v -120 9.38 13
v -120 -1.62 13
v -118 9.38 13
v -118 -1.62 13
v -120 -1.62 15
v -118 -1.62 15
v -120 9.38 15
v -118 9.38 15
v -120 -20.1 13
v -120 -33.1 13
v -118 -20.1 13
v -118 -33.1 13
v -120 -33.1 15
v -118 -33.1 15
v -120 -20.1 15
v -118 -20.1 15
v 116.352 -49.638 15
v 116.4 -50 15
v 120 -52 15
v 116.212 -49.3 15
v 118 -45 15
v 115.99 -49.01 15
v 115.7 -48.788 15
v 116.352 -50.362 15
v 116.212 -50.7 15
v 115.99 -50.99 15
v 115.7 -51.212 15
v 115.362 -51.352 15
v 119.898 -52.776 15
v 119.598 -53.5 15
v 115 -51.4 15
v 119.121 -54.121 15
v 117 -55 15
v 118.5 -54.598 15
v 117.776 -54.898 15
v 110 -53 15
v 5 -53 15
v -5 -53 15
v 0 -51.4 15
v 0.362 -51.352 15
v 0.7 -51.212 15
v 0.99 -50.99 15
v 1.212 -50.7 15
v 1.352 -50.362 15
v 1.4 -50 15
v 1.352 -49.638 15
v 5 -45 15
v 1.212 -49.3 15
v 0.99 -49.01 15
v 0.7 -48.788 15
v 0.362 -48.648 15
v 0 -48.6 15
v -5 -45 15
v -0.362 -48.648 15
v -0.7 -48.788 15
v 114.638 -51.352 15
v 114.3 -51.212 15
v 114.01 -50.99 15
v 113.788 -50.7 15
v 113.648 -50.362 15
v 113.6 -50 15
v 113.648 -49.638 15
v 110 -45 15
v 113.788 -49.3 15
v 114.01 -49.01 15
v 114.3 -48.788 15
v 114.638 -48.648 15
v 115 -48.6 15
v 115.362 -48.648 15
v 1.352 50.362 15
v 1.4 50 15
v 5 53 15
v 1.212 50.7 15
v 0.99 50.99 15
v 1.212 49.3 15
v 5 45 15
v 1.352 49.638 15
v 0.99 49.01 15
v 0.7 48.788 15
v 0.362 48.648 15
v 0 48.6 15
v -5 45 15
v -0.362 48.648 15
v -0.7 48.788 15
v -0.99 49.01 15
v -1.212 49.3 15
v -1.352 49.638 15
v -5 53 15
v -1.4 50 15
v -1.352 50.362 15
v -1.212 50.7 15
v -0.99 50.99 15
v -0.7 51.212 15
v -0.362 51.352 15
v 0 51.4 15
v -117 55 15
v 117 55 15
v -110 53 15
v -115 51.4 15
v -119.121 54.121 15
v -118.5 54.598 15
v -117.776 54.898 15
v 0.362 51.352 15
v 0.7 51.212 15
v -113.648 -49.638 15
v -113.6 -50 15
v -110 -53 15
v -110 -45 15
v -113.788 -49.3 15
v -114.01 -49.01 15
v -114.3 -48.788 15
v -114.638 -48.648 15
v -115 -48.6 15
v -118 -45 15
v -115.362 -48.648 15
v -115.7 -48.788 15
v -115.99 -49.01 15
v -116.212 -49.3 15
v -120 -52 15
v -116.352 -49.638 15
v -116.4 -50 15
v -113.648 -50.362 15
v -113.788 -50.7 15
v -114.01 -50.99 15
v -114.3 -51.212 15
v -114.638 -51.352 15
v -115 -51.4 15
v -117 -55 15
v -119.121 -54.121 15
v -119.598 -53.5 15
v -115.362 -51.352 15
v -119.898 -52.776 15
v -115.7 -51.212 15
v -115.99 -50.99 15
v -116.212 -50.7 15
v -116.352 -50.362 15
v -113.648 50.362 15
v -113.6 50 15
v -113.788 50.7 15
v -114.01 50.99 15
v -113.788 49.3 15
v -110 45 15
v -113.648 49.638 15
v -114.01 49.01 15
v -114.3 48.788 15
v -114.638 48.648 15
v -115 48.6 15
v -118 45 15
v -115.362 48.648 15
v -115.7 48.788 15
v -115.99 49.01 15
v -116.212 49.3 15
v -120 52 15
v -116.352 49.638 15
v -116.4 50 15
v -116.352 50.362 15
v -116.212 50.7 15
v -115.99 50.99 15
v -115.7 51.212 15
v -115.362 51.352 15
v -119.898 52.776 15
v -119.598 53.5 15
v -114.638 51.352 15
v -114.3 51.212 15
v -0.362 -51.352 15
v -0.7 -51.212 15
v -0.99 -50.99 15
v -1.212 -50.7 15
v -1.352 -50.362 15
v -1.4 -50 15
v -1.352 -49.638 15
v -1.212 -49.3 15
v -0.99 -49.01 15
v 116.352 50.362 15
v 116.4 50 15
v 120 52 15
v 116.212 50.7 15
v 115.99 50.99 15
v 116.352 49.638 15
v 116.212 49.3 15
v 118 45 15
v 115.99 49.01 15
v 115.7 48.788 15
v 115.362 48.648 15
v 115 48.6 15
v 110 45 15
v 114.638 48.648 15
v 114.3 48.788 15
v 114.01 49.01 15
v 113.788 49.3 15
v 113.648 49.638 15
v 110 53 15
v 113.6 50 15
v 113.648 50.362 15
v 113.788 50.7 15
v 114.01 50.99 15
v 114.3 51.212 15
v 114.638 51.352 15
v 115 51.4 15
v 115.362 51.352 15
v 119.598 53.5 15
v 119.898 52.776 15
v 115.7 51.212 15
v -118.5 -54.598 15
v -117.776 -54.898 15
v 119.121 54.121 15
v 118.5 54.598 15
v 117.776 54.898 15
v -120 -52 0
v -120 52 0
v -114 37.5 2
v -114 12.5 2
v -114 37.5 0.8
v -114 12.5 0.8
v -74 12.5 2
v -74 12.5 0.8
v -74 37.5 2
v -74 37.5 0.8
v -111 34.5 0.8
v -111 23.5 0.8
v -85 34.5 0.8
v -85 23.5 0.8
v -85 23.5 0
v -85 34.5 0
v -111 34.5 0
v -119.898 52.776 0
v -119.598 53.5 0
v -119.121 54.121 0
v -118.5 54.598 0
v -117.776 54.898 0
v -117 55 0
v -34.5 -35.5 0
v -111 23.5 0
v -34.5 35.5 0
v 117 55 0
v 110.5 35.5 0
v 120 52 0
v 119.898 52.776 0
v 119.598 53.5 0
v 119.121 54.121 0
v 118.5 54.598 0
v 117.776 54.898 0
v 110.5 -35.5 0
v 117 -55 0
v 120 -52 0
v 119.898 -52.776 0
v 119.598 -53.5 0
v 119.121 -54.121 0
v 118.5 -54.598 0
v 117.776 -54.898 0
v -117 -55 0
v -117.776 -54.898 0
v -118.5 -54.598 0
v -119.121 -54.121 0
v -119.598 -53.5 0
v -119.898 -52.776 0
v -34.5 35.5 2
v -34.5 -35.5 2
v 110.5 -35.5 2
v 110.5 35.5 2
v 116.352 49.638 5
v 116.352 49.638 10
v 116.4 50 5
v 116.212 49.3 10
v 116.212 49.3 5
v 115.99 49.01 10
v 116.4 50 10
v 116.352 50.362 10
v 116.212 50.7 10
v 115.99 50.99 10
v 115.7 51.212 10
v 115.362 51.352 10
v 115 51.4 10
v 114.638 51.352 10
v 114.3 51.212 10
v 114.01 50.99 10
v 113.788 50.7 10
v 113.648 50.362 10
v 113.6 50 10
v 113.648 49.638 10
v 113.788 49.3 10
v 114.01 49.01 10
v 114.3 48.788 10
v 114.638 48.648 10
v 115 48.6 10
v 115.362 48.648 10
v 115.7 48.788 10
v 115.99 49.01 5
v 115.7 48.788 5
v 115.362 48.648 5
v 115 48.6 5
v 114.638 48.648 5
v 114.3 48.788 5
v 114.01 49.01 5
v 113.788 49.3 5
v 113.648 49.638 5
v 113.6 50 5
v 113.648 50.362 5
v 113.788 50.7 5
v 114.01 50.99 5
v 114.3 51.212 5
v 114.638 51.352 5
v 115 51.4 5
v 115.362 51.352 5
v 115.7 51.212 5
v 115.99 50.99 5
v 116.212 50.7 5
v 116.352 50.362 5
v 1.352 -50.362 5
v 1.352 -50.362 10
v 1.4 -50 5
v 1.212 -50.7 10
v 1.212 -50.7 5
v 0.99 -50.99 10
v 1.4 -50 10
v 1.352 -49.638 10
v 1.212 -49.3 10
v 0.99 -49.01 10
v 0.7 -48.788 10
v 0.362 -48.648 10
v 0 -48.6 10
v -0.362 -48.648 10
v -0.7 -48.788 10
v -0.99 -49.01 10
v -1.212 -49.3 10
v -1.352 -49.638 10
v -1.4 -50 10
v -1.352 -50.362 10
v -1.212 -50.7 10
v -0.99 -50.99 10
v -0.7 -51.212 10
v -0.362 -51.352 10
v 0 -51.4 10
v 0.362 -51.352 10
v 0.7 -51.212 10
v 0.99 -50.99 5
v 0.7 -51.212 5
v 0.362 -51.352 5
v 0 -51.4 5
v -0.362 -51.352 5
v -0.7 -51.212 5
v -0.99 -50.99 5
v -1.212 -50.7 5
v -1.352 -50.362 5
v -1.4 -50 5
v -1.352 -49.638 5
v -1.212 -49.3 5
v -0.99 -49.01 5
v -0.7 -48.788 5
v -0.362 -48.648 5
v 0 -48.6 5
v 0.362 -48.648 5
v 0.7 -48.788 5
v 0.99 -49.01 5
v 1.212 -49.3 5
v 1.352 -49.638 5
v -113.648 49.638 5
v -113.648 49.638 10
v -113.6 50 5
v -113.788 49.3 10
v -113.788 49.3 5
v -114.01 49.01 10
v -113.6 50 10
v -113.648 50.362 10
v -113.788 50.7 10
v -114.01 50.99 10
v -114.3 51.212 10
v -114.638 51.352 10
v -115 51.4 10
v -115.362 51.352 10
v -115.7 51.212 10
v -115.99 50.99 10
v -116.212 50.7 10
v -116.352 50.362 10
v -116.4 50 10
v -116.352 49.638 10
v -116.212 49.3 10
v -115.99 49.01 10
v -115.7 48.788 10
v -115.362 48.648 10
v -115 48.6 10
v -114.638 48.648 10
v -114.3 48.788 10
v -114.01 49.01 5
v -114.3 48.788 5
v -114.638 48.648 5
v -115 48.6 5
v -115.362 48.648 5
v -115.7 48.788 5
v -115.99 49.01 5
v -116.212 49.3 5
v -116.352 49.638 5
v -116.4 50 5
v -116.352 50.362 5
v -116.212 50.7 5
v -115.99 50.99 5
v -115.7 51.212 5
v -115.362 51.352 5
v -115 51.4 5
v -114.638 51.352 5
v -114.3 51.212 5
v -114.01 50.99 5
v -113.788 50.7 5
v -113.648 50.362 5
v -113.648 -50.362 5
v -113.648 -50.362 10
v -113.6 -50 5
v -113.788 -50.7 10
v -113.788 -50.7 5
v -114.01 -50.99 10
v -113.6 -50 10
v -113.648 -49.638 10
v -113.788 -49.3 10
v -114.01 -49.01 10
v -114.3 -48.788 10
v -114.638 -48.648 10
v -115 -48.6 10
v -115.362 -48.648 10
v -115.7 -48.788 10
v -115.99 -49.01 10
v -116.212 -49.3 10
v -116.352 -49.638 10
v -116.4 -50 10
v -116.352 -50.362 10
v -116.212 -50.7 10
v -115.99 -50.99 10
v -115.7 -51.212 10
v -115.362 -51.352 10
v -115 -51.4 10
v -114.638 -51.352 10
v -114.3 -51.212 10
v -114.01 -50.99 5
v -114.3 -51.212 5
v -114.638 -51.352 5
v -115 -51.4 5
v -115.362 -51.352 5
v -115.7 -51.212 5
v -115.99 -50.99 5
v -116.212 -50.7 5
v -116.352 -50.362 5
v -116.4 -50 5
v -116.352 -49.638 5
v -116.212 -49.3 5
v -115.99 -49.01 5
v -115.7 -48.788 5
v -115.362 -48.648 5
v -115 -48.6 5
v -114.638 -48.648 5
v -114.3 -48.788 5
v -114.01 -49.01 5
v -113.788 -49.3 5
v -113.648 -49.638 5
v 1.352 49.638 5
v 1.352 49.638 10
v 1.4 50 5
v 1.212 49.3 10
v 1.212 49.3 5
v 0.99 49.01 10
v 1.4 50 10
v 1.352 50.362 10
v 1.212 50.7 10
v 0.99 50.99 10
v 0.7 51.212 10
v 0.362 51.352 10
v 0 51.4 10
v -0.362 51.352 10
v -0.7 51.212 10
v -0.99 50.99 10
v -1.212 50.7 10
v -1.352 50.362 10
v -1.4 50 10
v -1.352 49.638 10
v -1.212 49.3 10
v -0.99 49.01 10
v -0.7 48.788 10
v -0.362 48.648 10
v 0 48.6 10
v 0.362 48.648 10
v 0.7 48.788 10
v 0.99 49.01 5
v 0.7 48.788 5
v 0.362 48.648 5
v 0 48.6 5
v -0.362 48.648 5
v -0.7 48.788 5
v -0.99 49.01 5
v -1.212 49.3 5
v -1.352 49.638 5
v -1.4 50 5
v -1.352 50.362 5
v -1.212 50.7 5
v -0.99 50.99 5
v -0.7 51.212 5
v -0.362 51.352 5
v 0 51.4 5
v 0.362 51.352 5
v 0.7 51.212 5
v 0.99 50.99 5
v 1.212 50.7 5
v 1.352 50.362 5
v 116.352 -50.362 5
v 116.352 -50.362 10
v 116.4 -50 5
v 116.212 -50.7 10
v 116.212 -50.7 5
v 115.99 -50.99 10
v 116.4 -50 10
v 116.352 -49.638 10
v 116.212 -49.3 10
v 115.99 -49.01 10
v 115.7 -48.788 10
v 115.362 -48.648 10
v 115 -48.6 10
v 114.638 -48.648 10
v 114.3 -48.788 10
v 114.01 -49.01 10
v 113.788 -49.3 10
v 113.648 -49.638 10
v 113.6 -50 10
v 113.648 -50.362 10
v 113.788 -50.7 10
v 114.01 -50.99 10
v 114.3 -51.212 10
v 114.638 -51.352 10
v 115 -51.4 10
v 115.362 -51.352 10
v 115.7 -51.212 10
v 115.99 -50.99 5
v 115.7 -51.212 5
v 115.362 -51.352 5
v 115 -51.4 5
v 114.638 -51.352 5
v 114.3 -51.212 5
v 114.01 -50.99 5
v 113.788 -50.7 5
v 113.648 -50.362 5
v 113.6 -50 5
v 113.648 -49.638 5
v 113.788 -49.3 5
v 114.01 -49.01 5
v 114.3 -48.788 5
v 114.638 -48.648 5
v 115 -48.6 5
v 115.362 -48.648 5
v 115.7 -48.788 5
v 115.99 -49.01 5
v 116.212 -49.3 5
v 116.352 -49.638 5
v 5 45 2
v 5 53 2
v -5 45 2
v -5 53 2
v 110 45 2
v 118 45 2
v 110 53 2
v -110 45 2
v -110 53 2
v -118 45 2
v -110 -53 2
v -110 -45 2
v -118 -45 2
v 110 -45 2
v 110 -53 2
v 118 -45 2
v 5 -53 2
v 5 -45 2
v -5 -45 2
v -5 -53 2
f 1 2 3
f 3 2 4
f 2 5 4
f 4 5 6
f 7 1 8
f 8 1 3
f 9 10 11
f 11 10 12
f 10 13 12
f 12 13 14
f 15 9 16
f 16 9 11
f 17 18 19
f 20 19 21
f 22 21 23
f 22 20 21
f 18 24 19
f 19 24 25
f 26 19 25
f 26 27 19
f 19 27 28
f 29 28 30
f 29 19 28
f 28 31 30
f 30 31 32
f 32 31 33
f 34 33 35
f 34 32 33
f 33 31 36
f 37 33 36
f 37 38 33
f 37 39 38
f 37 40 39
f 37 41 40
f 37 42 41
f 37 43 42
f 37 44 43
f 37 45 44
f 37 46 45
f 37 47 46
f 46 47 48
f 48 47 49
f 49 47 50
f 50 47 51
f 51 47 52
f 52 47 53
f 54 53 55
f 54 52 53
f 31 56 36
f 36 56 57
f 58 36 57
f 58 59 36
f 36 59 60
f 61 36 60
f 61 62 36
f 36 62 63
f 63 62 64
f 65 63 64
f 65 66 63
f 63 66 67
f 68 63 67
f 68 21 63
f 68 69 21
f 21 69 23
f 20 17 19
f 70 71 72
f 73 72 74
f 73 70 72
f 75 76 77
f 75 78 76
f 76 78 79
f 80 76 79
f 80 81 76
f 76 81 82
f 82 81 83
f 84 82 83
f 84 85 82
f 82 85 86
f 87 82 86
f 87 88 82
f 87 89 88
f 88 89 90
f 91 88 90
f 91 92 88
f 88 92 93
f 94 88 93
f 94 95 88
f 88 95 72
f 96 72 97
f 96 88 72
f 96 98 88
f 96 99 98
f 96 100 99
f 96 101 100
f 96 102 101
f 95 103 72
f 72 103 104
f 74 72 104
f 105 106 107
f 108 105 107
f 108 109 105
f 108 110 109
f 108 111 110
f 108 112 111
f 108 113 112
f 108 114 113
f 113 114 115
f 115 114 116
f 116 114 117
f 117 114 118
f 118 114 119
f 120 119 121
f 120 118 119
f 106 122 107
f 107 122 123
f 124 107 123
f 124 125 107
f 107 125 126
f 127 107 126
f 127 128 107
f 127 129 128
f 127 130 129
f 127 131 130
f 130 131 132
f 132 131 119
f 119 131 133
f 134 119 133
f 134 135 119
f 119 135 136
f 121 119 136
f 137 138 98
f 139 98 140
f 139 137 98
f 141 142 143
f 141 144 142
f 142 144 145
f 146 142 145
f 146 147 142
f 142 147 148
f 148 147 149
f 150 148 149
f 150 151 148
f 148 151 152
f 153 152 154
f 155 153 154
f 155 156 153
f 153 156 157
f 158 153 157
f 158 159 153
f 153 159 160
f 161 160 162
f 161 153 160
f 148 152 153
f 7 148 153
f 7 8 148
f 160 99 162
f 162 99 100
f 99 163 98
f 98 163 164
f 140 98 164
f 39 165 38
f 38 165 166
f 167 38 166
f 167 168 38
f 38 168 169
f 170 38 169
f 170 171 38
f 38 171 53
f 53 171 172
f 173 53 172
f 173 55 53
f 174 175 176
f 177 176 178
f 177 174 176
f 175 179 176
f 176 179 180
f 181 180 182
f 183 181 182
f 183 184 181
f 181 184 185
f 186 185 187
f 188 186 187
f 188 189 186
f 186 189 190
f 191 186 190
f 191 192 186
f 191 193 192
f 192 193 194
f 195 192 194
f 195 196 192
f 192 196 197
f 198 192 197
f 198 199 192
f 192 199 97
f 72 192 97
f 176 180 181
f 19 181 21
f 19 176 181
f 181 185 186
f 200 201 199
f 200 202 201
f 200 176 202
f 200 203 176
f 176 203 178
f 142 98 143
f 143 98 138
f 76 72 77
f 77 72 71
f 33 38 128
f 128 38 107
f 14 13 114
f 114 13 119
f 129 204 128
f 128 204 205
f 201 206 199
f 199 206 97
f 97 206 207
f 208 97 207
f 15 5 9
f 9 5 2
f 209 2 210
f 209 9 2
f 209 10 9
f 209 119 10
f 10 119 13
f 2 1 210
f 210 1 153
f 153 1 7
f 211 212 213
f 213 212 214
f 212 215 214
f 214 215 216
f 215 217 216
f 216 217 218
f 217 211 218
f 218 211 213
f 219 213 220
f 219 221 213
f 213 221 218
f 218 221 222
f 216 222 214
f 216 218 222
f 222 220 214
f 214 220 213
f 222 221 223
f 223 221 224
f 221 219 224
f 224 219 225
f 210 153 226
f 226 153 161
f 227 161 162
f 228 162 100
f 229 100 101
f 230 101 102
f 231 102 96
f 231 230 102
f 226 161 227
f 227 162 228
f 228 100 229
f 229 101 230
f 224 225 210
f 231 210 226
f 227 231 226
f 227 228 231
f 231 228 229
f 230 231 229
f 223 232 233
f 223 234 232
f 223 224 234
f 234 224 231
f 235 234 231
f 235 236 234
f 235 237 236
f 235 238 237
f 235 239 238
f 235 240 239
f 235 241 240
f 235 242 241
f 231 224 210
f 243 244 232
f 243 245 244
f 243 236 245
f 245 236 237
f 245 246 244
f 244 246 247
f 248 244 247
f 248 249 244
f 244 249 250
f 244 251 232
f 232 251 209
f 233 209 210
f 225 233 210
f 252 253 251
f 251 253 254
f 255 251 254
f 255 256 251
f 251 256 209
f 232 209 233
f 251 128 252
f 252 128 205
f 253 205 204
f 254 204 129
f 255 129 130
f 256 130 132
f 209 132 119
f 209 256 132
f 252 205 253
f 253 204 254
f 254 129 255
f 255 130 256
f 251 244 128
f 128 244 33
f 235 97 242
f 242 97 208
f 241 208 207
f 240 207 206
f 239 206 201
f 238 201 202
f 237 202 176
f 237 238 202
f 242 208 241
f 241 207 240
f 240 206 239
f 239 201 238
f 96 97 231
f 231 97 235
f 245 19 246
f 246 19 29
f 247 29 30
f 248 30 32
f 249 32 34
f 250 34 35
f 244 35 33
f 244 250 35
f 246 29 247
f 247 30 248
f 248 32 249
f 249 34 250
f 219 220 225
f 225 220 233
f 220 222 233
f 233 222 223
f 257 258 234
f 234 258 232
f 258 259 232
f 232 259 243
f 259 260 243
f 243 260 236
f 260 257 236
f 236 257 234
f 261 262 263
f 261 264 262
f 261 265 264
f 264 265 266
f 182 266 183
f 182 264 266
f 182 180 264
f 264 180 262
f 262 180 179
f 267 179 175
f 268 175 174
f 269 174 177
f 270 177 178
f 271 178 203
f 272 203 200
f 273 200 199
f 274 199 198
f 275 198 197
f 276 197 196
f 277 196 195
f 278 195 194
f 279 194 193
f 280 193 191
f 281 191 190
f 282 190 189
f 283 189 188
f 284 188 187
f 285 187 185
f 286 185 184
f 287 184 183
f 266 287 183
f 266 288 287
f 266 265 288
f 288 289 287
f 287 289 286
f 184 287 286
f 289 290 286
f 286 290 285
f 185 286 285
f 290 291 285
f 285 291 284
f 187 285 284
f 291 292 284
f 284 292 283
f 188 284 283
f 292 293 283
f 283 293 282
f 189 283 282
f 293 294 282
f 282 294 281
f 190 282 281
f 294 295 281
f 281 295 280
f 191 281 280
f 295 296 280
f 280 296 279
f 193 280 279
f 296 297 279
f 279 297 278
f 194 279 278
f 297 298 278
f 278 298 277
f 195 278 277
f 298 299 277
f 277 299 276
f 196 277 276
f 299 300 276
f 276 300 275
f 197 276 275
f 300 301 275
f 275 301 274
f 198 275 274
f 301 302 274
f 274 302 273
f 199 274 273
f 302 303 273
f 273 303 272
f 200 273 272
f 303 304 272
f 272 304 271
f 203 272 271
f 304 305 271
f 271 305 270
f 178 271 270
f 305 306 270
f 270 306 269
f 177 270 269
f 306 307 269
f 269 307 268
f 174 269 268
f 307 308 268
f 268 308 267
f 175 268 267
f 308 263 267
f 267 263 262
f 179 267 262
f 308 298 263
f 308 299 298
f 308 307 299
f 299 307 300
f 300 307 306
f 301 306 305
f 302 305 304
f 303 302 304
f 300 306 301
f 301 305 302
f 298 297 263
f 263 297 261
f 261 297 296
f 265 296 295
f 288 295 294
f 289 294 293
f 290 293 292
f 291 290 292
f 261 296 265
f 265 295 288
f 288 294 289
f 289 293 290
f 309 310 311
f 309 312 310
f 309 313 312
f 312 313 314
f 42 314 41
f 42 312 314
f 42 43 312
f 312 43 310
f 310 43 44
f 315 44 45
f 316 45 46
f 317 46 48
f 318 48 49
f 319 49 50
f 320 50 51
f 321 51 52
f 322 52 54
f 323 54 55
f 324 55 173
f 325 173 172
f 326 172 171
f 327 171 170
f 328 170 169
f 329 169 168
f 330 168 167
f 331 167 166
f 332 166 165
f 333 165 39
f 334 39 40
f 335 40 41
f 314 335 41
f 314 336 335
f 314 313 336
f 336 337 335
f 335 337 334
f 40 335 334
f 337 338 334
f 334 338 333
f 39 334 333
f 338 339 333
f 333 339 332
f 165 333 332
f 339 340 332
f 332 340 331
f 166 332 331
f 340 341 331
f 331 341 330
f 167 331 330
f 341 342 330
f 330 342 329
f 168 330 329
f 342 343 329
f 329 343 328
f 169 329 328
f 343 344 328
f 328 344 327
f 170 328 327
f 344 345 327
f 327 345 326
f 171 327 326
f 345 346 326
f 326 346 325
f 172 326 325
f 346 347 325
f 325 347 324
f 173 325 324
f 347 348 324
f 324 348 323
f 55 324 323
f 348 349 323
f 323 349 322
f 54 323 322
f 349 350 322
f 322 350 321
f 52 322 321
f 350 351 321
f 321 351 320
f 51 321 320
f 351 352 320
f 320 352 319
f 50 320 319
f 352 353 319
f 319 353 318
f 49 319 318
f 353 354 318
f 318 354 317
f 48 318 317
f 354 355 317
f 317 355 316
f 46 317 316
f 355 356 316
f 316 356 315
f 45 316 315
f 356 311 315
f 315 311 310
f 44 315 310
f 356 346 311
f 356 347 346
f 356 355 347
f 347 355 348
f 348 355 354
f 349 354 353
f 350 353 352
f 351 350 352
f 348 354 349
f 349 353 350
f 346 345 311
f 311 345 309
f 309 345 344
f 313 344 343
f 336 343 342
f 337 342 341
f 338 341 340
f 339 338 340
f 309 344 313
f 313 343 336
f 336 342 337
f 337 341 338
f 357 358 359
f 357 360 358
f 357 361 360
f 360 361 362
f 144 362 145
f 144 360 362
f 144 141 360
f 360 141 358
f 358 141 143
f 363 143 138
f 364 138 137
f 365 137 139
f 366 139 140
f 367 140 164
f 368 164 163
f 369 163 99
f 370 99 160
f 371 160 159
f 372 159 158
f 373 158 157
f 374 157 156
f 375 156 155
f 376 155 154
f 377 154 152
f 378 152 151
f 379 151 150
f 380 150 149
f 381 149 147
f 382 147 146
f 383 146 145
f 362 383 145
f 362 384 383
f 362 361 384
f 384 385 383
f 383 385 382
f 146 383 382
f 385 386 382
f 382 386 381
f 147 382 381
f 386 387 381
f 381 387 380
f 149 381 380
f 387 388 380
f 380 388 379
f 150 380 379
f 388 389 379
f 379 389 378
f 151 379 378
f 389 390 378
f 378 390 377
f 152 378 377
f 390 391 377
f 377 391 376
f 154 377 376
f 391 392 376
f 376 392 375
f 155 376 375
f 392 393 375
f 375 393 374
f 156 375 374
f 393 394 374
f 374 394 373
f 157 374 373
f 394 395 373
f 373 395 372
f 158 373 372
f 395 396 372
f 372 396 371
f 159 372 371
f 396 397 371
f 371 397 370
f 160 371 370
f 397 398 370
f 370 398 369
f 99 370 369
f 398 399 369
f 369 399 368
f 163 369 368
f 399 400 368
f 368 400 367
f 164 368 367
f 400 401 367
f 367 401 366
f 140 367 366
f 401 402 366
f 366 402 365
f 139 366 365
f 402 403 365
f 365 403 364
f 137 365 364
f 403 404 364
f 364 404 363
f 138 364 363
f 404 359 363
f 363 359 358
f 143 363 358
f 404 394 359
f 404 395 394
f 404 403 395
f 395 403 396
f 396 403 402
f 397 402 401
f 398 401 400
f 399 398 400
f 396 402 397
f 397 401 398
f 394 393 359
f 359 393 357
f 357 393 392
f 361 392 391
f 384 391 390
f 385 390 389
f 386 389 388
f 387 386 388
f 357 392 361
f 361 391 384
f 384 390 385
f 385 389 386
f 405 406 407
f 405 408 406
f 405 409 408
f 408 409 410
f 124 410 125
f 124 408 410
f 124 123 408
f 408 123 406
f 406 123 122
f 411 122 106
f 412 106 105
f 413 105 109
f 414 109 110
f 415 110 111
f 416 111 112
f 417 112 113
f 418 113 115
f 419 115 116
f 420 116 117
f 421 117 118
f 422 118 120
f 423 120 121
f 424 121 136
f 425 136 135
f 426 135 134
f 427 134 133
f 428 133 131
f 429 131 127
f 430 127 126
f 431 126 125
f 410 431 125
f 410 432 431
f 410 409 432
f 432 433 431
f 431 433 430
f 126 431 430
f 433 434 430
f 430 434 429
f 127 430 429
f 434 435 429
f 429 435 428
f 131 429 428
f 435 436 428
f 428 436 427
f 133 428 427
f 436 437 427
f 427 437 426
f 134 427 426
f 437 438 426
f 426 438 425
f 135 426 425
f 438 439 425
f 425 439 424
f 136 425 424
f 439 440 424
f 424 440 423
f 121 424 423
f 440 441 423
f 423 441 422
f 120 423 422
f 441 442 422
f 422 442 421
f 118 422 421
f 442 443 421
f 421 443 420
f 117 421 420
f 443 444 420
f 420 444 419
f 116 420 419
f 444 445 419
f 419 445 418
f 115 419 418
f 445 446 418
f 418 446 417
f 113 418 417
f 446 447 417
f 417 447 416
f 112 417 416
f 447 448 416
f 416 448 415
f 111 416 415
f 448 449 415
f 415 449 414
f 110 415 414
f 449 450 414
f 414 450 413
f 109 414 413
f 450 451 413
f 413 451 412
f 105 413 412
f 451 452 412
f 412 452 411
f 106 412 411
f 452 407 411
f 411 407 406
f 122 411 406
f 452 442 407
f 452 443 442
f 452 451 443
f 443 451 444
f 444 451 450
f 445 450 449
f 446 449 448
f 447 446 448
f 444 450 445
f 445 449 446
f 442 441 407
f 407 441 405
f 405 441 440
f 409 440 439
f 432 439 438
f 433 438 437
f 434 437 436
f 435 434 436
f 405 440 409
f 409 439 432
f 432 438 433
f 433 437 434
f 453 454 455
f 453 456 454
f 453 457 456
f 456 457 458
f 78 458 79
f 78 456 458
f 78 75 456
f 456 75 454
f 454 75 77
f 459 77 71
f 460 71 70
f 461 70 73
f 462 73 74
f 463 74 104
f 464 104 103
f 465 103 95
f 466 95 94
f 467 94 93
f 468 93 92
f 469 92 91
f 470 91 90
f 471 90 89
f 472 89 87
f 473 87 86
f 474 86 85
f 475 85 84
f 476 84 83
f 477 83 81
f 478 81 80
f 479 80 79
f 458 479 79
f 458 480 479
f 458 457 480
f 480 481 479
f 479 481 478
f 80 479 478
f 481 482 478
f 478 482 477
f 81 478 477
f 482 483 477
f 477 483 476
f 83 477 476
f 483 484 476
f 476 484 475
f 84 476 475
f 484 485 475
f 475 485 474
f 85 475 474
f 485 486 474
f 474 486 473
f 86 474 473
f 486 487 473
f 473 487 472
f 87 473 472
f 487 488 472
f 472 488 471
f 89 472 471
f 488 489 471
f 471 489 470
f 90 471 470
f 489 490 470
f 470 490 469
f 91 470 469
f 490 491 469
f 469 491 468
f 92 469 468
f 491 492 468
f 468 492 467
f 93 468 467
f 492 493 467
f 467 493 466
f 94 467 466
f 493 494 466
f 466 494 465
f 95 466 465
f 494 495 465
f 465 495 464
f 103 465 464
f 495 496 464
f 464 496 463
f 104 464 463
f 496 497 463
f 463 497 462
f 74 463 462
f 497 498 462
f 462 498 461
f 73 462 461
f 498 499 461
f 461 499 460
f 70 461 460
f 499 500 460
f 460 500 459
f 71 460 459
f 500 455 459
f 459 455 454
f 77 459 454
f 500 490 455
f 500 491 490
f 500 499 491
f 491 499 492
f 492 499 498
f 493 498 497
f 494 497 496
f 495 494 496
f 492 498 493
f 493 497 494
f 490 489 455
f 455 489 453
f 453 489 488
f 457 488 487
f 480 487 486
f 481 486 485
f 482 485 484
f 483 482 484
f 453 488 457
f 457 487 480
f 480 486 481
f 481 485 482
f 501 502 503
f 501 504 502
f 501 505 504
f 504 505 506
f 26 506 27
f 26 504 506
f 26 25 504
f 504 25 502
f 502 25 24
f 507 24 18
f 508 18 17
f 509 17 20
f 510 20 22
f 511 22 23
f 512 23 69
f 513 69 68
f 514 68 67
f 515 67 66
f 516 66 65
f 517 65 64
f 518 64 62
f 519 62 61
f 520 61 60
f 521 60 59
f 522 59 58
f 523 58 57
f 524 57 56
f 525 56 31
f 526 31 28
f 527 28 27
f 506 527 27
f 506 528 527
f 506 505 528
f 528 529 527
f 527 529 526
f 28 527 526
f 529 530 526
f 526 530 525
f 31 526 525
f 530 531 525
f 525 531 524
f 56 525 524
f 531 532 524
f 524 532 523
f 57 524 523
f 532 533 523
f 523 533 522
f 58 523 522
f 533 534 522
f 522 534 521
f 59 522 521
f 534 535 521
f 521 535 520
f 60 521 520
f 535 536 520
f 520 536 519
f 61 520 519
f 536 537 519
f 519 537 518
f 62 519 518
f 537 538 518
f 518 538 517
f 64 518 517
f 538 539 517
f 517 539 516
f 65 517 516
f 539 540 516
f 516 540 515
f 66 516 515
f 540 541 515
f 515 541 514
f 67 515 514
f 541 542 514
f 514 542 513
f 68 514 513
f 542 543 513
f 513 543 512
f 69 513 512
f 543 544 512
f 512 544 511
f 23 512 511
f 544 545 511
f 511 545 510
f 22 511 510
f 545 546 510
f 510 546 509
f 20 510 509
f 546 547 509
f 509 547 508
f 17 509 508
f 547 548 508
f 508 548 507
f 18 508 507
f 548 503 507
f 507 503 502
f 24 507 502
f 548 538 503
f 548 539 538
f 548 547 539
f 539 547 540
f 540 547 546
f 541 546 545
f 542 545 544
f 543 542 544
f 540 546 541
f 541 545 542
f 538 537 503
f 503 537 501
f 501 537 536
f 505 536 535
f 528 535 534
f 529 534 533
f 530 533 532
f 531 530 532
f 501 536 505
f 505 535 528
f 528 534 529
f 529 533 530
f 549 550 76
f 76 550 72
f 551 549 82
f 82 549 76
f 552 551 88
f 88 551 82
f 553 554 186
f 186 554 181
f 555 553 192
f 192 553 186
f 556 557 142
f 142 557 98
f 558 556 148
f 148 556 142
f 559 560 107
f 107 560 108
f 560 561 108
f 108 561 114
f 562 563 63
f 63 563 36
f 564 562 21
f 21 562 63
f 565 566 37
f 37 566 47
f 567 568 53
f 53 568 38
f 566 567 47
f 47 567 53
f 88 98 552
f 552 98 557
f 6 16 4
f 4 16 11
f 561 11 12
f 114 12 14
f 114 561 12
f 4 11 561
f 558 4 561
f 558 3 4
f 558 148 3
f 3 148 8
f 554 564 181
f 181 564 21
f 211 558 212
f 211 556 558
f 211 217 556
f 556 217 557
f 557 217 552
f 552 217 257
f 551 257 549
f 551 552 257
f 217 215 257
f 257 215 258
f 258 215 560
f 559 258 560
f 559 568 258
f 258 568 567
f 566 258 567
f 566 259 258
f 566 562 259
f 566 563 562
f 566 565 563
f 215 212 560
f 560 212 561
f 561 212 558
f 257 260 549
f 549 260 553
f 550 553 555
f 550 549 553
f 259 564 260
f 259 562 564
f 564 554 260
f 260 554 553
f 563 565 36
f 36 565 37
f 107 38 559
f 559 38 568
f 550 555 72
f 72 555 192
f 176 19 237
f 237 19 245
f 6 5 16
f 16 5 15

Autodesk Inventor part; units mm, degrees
ref_plane "YZ Plane" through (0, 0, 0) normal (1, 0, 0) x (0, 1, 0)
ref_plane "XZ Plane" through (0, 0, 0) normal (0, 1, 0) x (-1, 0, 0)
ref_plane "XY Plane" through (0, 0, 0) normal (0, 0, 1) x (1, 0, 0)
sketch "スケッチ1" plane through (0, 0, 0) normal (0, 0, 1) x (1, 0, 0)
  line L0 (-120, 55) -> (120, 55)
  line L1 (120, 55) -> (120, -55)
  line L2 (120, -55) -> (-120, -55)
  line L3 (-120, -55) -> (-120, 55)
  point P0 (0, 0)
  point P1 (0, -55)
  point P2 (120, 0)
  dimension "d0" = 240
  dimension "d1" = 110
extrude "天板" add sketch "スケッチ1" along normal blind 15
sketch "スケッチ2" plane through (0, 0, 15) normal (0, 0, 1) x (1, 0, 0)
  line L0 (-118, 53) -> (118, 53)
  line L1 (118, 53) -> (118, -53)
  line L2 (118, -53) -> (-118, -53)
  line L3 (-118, -53) -> (-118, 53)
  point P0 (0, 0)
  point P1 (0, -53)
  point P2 (118, 0)
  dimension "d4" = 236
  dimension "d5" = 106
extrude "天板くりぬき" cut sketch "スケッチ2" against normal blind 13
sketch "スケッチ3" plane through (0, 0, 2) normal (0, 0, 1) x (1, 0, 0)
  line L0 (-118, 53) -> (-110, 53)
  line L1 (-110, 53) -> (-110, 45)
  line L2 (-110, 45) -> (-118, 45)
  line L3 (-118, 45) -> (-118, 53)
  line L4 (-118, -45) -> (-110, -45)
  line L5 (-110, -45) -> (-110, -53)
  line L6 (-110, -53) -> (-118, -53)
  line L7 (-118, -53) -> (-118, -45)
  line L8 (110, 53) -> (118, 53)
  line L9 (118, 53) -> (118, 45)
  line L10 (118, 45) -> (110, 45)
  line L11 (110, 45) -> (110, 53)
  line L12 (110, -45) -> (118, -45)
  line L13 (118, -45) -> (118, -53)
  line L14 (118, -53) -> (110, -53)
  line L15 (110, -53) -> (110, -45)
  line L16 (-5, 53) -> (5, 53)
  line L17 (5, 53) -> (5, 45)
  line L18 (5, 45) -> (-5, 45)
  line L19 (-5, 45) -> (-5, 53)
  line L20 (-5, -45) -> (5, -45)
  line L21 (5, -45) -> (5, -53)
  line L22 (5, -53) -> (-5, -53)
  line L23 (-5, -53) -> (-5, -45)
  line L24 (-118, 53) -> (118, 53) projected
  line L25 (118, -53) -> (-118, -53) projected
  point P0 (0, 0)
  point P1 (0, 53)
  point P2 (0, 53)
  point P3 (0, -53)
  point P4 (0, -53)
  dimension "d8" = 8
  dimension "d9" = 8
  dimension "d10" = 10
extrude "天板固定用ボス" add sketch "スケッチ3" along normal blind 13
sketch "スケッチ4" plane through (0, 0, 15) normal (0, 0, 1) x (1, 0, 0)
  circle A0 centre (-115, 50) radius 1.4
  circle A1 centre (-115, -50) radius 1.4
  circle A2 centre (0, -50) radius 1.4
  circle A3 centre (0, 50) radius 1.4
  circle A4 centre (115, 50) radius 1.4
  circle A5 centre (115, -50) radius 1.4
  line L0 (120, 55) -> (-120, 55) projected
  line L1 (-120, 55) -> (-120, -55) projected
  line L2 (-120, -55) -> (120, -55) projected
  line L3 (120, 55) -> (120, -55) projected
  point P0 (0, 0)
  dimension "d13" = 2.8
  dimension "d14" = 5
  dimension "d15" = 5
  dimension "d16" = 5
  dimension "d17" = 5
extrude "天板固定用ねじ穴" cut sketch "スケッチ4" against normal blind 10 contours A0 | A1 | A2 | A3 | A4 | A5
sketch "スケッチ5" plane through (0, 0, 2) normal (0, 0, 1) x (1, 0, 0)
  line L0 (-34.5, 35.5) -> (110.5, 35.5)
  line L1 (110.5, 35.5) -> (110.5, -35.5)
  line L2 (110.5, -35.5) -> (-34.5, -35.5)
  line L3 (-34.5, -35.5) -> (-34.5, 35.5)
  line L4 (-85, 34.5) -> (-111, 34.5)
  line L5 (-111, 34.5) -> (-111, 23.5)
  line L6 (-111, 23.5) -> (-85, 23.5)
  line L7 (-85, 23.5) -> (-85, 34.5)
  point P0 (0, 0)
  point P1 (-10, 0)
  point P2 (86, 0)
  point P3 (38, 0)
  point P4 (38, 35.5)
  point P5 (-34.5, 0)
  point P6 (-85, 29)
  point P7 (-85, 29)
  dimension "d20" = 10
  dimension "d21" = 96
  dimension "d22" = 145
  dimension "d23" = 71
  dimension "d24" = 48
  dimension "d27" = 85
  dimension "d28" = 29
  dimension "d31" = 26
  dimension "d32" = 11
extrude "7セグ LCD用穴" cut sketch "スケッチ5" against normal blind 2
fillet "フィレット1" radius 3 4 edges at (120, -55, 7.5) (120, 55, 7.5) (-120, -55, 7.5) (-120, 55, 7.5)
sketch "スケッチ6" plane through (0, 0, 2) normal (0, 0, 1) x (1, 0, 0)
  line L0 (-114, 37.5) -> (-74, 37.5)
  line L1 (-74, 37.5) -> (-74, 12.5)
  line L2 (-74, 12.5) -> (-114, 12.5)
  line L3 (-114, 12.5) -> (-114, 37.5)
  line L4 (-85, 34.5) -> (-85, 23.5) projected
  line L5 (-111, 23.5) -> (-111, 34.5) projected
  point P0 (0, 0)
  point P1 (-74, 25)
  point P2 (-85, 29)
  dimension "d34" = 40
  dimension "d35" = 25
  dimension "d36" = 3
  dimension "d55" = 4
extrude "LCD用くぼみ" cut sketch "スケッチ6" against normal blind 1.2
sketch "スケッチ8" plane through (-120, -52, 0) normal (-1, 0, 0) x (0, 0, 1)
  line L0 (0, 16.5) -> (0, 87.5) projected
  line L1 (15, 0) -> (15, 104) projected
  line L2 (15, 61.38) -> (13, 61.38)
  line L3 (13, 61.38) -> (13, 50.38)
  line L4 (13, 50.38) -> (15, 50.38)
  line L5 (15, 50.38) -> (15, 61.38)
  line L6 (15, 31.9) -> (13, 31.9)
  line L7 (13, 31.9) -> (13, 18.9)
  line L8 (13, 18.9) -> (15, 18.9)
  line L9 (15, 18.9) -> (15, 31.9)
  point P0 (0, 52)
  point P1 (0, 63.5)
  point P2 (15, 55.88)
  point P3 (15, 25.4)
  point P4 (15, 55.88)
  point P5 (15, 25.4)
  dimension "d46" = 11.5
  dimension "d47" = 7.62
  dimension "d48" = 38.1
  dimension "d49" = 2
  dimension "d50" = 11
  dimension "d51" = 2
  dimension "d52" = 13
extrude "Arduinoコネクタ穴" cut sketch "スケッチ8" against normal blind 2
properties part number "top-cover"
